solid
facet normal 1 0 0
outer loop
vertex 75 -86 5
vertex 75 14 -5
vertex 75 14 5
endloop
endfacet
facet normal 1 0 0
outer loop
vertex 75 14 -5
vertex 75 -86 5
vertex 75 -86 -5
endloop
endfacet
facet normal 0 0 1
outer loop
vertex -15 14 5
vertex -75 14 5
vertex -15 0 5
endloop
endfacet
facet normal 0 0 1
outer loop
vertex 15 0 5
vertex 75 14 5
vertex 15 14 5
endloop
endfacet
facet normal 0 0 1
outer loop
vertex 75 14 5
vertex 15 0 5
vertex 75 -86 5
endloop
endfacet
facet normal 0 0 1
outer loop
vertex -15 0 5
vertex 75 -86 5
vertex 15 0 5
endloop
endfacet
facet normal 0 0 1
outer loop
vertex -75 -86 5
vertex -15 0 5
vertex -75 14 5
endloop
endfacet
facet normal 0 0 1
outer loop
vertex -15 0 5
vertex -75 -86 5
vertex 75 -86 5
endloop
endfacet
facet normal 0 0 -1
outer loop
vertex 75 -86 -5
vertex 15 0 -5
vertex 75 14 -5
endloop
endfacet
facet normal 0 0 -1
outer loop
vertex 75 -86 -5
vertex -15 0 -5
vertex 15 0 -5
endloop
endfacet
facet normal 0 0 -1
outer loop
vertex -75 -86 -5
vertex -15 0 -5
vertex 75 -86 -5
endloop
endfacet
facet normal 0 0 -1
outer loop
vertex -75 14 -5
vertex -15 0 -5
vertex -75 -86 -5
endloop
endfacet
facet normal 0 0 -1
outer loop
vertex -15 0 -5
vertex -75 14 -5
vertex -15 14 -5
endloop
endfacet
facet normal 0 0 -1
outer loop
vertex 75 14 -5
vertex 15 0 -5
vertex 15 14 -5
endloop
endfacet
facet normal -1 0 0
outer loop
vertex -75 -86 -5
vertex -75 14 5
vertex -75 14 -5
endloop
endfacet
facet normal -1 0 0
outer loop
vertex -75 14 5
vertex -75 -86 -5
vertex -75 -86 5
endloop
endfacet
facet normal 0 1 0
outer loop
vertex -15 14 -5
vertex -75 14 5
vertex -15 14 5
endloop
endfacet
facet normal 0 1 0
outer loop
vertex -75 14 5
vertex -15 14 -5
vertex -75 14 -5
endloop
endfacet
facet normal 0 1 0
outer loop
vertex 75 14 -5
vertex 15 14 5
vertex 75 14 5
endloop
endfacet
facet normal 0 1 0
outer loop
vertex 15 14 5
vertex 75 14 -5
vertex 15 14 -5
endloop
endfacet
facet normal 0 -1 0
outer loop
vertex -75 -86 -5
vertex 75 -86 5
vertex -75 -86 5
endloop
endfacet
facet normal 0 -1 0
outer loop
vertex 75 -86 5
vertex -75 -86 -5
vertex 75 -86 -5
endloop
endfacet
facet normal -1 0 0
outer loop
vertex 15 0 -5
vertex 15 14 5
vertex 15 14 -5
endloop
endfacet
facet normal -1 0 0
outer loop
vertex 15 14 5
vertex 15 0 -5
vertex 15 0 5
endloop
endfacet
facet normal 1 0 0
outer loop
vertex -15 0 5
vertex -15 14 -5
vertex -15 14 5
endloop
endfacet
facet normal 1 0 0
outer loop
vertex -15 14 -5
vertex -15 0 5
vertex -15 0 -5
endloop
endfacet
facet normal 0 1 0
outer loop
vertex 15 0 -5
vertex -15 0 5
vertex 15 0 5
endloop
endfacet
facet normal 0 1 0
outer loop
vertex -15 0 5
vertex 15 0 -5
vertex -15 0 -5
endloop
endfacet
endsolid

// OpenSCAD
height = 10;  // unknown depth 
removalHeight = height+1;
cylinderRadius = 15;
rectangerlWith = 
    cylinderRadius*2;
rectangerlLenght = 14;
tamplateWith = 150;
tamplateLenght = 100;

/*
difference()  {cube(12, center=true); sphere(8);} //
*/

difference() {
translate([
    -tamplateWith/2,
    -tamplateLenght+
    rectangerlLenght,
    -height/2]) 
    cube(size = [
    tamplateWith,
    tamplateLenght,
    height]);
    
translate([
    -rectangerlWith/2,
    0,
    -removalHeight/2]) 
    cube(size = [
    rectangerlWith,
    rectangerlLenght+1,
    removalHeight]);
}
